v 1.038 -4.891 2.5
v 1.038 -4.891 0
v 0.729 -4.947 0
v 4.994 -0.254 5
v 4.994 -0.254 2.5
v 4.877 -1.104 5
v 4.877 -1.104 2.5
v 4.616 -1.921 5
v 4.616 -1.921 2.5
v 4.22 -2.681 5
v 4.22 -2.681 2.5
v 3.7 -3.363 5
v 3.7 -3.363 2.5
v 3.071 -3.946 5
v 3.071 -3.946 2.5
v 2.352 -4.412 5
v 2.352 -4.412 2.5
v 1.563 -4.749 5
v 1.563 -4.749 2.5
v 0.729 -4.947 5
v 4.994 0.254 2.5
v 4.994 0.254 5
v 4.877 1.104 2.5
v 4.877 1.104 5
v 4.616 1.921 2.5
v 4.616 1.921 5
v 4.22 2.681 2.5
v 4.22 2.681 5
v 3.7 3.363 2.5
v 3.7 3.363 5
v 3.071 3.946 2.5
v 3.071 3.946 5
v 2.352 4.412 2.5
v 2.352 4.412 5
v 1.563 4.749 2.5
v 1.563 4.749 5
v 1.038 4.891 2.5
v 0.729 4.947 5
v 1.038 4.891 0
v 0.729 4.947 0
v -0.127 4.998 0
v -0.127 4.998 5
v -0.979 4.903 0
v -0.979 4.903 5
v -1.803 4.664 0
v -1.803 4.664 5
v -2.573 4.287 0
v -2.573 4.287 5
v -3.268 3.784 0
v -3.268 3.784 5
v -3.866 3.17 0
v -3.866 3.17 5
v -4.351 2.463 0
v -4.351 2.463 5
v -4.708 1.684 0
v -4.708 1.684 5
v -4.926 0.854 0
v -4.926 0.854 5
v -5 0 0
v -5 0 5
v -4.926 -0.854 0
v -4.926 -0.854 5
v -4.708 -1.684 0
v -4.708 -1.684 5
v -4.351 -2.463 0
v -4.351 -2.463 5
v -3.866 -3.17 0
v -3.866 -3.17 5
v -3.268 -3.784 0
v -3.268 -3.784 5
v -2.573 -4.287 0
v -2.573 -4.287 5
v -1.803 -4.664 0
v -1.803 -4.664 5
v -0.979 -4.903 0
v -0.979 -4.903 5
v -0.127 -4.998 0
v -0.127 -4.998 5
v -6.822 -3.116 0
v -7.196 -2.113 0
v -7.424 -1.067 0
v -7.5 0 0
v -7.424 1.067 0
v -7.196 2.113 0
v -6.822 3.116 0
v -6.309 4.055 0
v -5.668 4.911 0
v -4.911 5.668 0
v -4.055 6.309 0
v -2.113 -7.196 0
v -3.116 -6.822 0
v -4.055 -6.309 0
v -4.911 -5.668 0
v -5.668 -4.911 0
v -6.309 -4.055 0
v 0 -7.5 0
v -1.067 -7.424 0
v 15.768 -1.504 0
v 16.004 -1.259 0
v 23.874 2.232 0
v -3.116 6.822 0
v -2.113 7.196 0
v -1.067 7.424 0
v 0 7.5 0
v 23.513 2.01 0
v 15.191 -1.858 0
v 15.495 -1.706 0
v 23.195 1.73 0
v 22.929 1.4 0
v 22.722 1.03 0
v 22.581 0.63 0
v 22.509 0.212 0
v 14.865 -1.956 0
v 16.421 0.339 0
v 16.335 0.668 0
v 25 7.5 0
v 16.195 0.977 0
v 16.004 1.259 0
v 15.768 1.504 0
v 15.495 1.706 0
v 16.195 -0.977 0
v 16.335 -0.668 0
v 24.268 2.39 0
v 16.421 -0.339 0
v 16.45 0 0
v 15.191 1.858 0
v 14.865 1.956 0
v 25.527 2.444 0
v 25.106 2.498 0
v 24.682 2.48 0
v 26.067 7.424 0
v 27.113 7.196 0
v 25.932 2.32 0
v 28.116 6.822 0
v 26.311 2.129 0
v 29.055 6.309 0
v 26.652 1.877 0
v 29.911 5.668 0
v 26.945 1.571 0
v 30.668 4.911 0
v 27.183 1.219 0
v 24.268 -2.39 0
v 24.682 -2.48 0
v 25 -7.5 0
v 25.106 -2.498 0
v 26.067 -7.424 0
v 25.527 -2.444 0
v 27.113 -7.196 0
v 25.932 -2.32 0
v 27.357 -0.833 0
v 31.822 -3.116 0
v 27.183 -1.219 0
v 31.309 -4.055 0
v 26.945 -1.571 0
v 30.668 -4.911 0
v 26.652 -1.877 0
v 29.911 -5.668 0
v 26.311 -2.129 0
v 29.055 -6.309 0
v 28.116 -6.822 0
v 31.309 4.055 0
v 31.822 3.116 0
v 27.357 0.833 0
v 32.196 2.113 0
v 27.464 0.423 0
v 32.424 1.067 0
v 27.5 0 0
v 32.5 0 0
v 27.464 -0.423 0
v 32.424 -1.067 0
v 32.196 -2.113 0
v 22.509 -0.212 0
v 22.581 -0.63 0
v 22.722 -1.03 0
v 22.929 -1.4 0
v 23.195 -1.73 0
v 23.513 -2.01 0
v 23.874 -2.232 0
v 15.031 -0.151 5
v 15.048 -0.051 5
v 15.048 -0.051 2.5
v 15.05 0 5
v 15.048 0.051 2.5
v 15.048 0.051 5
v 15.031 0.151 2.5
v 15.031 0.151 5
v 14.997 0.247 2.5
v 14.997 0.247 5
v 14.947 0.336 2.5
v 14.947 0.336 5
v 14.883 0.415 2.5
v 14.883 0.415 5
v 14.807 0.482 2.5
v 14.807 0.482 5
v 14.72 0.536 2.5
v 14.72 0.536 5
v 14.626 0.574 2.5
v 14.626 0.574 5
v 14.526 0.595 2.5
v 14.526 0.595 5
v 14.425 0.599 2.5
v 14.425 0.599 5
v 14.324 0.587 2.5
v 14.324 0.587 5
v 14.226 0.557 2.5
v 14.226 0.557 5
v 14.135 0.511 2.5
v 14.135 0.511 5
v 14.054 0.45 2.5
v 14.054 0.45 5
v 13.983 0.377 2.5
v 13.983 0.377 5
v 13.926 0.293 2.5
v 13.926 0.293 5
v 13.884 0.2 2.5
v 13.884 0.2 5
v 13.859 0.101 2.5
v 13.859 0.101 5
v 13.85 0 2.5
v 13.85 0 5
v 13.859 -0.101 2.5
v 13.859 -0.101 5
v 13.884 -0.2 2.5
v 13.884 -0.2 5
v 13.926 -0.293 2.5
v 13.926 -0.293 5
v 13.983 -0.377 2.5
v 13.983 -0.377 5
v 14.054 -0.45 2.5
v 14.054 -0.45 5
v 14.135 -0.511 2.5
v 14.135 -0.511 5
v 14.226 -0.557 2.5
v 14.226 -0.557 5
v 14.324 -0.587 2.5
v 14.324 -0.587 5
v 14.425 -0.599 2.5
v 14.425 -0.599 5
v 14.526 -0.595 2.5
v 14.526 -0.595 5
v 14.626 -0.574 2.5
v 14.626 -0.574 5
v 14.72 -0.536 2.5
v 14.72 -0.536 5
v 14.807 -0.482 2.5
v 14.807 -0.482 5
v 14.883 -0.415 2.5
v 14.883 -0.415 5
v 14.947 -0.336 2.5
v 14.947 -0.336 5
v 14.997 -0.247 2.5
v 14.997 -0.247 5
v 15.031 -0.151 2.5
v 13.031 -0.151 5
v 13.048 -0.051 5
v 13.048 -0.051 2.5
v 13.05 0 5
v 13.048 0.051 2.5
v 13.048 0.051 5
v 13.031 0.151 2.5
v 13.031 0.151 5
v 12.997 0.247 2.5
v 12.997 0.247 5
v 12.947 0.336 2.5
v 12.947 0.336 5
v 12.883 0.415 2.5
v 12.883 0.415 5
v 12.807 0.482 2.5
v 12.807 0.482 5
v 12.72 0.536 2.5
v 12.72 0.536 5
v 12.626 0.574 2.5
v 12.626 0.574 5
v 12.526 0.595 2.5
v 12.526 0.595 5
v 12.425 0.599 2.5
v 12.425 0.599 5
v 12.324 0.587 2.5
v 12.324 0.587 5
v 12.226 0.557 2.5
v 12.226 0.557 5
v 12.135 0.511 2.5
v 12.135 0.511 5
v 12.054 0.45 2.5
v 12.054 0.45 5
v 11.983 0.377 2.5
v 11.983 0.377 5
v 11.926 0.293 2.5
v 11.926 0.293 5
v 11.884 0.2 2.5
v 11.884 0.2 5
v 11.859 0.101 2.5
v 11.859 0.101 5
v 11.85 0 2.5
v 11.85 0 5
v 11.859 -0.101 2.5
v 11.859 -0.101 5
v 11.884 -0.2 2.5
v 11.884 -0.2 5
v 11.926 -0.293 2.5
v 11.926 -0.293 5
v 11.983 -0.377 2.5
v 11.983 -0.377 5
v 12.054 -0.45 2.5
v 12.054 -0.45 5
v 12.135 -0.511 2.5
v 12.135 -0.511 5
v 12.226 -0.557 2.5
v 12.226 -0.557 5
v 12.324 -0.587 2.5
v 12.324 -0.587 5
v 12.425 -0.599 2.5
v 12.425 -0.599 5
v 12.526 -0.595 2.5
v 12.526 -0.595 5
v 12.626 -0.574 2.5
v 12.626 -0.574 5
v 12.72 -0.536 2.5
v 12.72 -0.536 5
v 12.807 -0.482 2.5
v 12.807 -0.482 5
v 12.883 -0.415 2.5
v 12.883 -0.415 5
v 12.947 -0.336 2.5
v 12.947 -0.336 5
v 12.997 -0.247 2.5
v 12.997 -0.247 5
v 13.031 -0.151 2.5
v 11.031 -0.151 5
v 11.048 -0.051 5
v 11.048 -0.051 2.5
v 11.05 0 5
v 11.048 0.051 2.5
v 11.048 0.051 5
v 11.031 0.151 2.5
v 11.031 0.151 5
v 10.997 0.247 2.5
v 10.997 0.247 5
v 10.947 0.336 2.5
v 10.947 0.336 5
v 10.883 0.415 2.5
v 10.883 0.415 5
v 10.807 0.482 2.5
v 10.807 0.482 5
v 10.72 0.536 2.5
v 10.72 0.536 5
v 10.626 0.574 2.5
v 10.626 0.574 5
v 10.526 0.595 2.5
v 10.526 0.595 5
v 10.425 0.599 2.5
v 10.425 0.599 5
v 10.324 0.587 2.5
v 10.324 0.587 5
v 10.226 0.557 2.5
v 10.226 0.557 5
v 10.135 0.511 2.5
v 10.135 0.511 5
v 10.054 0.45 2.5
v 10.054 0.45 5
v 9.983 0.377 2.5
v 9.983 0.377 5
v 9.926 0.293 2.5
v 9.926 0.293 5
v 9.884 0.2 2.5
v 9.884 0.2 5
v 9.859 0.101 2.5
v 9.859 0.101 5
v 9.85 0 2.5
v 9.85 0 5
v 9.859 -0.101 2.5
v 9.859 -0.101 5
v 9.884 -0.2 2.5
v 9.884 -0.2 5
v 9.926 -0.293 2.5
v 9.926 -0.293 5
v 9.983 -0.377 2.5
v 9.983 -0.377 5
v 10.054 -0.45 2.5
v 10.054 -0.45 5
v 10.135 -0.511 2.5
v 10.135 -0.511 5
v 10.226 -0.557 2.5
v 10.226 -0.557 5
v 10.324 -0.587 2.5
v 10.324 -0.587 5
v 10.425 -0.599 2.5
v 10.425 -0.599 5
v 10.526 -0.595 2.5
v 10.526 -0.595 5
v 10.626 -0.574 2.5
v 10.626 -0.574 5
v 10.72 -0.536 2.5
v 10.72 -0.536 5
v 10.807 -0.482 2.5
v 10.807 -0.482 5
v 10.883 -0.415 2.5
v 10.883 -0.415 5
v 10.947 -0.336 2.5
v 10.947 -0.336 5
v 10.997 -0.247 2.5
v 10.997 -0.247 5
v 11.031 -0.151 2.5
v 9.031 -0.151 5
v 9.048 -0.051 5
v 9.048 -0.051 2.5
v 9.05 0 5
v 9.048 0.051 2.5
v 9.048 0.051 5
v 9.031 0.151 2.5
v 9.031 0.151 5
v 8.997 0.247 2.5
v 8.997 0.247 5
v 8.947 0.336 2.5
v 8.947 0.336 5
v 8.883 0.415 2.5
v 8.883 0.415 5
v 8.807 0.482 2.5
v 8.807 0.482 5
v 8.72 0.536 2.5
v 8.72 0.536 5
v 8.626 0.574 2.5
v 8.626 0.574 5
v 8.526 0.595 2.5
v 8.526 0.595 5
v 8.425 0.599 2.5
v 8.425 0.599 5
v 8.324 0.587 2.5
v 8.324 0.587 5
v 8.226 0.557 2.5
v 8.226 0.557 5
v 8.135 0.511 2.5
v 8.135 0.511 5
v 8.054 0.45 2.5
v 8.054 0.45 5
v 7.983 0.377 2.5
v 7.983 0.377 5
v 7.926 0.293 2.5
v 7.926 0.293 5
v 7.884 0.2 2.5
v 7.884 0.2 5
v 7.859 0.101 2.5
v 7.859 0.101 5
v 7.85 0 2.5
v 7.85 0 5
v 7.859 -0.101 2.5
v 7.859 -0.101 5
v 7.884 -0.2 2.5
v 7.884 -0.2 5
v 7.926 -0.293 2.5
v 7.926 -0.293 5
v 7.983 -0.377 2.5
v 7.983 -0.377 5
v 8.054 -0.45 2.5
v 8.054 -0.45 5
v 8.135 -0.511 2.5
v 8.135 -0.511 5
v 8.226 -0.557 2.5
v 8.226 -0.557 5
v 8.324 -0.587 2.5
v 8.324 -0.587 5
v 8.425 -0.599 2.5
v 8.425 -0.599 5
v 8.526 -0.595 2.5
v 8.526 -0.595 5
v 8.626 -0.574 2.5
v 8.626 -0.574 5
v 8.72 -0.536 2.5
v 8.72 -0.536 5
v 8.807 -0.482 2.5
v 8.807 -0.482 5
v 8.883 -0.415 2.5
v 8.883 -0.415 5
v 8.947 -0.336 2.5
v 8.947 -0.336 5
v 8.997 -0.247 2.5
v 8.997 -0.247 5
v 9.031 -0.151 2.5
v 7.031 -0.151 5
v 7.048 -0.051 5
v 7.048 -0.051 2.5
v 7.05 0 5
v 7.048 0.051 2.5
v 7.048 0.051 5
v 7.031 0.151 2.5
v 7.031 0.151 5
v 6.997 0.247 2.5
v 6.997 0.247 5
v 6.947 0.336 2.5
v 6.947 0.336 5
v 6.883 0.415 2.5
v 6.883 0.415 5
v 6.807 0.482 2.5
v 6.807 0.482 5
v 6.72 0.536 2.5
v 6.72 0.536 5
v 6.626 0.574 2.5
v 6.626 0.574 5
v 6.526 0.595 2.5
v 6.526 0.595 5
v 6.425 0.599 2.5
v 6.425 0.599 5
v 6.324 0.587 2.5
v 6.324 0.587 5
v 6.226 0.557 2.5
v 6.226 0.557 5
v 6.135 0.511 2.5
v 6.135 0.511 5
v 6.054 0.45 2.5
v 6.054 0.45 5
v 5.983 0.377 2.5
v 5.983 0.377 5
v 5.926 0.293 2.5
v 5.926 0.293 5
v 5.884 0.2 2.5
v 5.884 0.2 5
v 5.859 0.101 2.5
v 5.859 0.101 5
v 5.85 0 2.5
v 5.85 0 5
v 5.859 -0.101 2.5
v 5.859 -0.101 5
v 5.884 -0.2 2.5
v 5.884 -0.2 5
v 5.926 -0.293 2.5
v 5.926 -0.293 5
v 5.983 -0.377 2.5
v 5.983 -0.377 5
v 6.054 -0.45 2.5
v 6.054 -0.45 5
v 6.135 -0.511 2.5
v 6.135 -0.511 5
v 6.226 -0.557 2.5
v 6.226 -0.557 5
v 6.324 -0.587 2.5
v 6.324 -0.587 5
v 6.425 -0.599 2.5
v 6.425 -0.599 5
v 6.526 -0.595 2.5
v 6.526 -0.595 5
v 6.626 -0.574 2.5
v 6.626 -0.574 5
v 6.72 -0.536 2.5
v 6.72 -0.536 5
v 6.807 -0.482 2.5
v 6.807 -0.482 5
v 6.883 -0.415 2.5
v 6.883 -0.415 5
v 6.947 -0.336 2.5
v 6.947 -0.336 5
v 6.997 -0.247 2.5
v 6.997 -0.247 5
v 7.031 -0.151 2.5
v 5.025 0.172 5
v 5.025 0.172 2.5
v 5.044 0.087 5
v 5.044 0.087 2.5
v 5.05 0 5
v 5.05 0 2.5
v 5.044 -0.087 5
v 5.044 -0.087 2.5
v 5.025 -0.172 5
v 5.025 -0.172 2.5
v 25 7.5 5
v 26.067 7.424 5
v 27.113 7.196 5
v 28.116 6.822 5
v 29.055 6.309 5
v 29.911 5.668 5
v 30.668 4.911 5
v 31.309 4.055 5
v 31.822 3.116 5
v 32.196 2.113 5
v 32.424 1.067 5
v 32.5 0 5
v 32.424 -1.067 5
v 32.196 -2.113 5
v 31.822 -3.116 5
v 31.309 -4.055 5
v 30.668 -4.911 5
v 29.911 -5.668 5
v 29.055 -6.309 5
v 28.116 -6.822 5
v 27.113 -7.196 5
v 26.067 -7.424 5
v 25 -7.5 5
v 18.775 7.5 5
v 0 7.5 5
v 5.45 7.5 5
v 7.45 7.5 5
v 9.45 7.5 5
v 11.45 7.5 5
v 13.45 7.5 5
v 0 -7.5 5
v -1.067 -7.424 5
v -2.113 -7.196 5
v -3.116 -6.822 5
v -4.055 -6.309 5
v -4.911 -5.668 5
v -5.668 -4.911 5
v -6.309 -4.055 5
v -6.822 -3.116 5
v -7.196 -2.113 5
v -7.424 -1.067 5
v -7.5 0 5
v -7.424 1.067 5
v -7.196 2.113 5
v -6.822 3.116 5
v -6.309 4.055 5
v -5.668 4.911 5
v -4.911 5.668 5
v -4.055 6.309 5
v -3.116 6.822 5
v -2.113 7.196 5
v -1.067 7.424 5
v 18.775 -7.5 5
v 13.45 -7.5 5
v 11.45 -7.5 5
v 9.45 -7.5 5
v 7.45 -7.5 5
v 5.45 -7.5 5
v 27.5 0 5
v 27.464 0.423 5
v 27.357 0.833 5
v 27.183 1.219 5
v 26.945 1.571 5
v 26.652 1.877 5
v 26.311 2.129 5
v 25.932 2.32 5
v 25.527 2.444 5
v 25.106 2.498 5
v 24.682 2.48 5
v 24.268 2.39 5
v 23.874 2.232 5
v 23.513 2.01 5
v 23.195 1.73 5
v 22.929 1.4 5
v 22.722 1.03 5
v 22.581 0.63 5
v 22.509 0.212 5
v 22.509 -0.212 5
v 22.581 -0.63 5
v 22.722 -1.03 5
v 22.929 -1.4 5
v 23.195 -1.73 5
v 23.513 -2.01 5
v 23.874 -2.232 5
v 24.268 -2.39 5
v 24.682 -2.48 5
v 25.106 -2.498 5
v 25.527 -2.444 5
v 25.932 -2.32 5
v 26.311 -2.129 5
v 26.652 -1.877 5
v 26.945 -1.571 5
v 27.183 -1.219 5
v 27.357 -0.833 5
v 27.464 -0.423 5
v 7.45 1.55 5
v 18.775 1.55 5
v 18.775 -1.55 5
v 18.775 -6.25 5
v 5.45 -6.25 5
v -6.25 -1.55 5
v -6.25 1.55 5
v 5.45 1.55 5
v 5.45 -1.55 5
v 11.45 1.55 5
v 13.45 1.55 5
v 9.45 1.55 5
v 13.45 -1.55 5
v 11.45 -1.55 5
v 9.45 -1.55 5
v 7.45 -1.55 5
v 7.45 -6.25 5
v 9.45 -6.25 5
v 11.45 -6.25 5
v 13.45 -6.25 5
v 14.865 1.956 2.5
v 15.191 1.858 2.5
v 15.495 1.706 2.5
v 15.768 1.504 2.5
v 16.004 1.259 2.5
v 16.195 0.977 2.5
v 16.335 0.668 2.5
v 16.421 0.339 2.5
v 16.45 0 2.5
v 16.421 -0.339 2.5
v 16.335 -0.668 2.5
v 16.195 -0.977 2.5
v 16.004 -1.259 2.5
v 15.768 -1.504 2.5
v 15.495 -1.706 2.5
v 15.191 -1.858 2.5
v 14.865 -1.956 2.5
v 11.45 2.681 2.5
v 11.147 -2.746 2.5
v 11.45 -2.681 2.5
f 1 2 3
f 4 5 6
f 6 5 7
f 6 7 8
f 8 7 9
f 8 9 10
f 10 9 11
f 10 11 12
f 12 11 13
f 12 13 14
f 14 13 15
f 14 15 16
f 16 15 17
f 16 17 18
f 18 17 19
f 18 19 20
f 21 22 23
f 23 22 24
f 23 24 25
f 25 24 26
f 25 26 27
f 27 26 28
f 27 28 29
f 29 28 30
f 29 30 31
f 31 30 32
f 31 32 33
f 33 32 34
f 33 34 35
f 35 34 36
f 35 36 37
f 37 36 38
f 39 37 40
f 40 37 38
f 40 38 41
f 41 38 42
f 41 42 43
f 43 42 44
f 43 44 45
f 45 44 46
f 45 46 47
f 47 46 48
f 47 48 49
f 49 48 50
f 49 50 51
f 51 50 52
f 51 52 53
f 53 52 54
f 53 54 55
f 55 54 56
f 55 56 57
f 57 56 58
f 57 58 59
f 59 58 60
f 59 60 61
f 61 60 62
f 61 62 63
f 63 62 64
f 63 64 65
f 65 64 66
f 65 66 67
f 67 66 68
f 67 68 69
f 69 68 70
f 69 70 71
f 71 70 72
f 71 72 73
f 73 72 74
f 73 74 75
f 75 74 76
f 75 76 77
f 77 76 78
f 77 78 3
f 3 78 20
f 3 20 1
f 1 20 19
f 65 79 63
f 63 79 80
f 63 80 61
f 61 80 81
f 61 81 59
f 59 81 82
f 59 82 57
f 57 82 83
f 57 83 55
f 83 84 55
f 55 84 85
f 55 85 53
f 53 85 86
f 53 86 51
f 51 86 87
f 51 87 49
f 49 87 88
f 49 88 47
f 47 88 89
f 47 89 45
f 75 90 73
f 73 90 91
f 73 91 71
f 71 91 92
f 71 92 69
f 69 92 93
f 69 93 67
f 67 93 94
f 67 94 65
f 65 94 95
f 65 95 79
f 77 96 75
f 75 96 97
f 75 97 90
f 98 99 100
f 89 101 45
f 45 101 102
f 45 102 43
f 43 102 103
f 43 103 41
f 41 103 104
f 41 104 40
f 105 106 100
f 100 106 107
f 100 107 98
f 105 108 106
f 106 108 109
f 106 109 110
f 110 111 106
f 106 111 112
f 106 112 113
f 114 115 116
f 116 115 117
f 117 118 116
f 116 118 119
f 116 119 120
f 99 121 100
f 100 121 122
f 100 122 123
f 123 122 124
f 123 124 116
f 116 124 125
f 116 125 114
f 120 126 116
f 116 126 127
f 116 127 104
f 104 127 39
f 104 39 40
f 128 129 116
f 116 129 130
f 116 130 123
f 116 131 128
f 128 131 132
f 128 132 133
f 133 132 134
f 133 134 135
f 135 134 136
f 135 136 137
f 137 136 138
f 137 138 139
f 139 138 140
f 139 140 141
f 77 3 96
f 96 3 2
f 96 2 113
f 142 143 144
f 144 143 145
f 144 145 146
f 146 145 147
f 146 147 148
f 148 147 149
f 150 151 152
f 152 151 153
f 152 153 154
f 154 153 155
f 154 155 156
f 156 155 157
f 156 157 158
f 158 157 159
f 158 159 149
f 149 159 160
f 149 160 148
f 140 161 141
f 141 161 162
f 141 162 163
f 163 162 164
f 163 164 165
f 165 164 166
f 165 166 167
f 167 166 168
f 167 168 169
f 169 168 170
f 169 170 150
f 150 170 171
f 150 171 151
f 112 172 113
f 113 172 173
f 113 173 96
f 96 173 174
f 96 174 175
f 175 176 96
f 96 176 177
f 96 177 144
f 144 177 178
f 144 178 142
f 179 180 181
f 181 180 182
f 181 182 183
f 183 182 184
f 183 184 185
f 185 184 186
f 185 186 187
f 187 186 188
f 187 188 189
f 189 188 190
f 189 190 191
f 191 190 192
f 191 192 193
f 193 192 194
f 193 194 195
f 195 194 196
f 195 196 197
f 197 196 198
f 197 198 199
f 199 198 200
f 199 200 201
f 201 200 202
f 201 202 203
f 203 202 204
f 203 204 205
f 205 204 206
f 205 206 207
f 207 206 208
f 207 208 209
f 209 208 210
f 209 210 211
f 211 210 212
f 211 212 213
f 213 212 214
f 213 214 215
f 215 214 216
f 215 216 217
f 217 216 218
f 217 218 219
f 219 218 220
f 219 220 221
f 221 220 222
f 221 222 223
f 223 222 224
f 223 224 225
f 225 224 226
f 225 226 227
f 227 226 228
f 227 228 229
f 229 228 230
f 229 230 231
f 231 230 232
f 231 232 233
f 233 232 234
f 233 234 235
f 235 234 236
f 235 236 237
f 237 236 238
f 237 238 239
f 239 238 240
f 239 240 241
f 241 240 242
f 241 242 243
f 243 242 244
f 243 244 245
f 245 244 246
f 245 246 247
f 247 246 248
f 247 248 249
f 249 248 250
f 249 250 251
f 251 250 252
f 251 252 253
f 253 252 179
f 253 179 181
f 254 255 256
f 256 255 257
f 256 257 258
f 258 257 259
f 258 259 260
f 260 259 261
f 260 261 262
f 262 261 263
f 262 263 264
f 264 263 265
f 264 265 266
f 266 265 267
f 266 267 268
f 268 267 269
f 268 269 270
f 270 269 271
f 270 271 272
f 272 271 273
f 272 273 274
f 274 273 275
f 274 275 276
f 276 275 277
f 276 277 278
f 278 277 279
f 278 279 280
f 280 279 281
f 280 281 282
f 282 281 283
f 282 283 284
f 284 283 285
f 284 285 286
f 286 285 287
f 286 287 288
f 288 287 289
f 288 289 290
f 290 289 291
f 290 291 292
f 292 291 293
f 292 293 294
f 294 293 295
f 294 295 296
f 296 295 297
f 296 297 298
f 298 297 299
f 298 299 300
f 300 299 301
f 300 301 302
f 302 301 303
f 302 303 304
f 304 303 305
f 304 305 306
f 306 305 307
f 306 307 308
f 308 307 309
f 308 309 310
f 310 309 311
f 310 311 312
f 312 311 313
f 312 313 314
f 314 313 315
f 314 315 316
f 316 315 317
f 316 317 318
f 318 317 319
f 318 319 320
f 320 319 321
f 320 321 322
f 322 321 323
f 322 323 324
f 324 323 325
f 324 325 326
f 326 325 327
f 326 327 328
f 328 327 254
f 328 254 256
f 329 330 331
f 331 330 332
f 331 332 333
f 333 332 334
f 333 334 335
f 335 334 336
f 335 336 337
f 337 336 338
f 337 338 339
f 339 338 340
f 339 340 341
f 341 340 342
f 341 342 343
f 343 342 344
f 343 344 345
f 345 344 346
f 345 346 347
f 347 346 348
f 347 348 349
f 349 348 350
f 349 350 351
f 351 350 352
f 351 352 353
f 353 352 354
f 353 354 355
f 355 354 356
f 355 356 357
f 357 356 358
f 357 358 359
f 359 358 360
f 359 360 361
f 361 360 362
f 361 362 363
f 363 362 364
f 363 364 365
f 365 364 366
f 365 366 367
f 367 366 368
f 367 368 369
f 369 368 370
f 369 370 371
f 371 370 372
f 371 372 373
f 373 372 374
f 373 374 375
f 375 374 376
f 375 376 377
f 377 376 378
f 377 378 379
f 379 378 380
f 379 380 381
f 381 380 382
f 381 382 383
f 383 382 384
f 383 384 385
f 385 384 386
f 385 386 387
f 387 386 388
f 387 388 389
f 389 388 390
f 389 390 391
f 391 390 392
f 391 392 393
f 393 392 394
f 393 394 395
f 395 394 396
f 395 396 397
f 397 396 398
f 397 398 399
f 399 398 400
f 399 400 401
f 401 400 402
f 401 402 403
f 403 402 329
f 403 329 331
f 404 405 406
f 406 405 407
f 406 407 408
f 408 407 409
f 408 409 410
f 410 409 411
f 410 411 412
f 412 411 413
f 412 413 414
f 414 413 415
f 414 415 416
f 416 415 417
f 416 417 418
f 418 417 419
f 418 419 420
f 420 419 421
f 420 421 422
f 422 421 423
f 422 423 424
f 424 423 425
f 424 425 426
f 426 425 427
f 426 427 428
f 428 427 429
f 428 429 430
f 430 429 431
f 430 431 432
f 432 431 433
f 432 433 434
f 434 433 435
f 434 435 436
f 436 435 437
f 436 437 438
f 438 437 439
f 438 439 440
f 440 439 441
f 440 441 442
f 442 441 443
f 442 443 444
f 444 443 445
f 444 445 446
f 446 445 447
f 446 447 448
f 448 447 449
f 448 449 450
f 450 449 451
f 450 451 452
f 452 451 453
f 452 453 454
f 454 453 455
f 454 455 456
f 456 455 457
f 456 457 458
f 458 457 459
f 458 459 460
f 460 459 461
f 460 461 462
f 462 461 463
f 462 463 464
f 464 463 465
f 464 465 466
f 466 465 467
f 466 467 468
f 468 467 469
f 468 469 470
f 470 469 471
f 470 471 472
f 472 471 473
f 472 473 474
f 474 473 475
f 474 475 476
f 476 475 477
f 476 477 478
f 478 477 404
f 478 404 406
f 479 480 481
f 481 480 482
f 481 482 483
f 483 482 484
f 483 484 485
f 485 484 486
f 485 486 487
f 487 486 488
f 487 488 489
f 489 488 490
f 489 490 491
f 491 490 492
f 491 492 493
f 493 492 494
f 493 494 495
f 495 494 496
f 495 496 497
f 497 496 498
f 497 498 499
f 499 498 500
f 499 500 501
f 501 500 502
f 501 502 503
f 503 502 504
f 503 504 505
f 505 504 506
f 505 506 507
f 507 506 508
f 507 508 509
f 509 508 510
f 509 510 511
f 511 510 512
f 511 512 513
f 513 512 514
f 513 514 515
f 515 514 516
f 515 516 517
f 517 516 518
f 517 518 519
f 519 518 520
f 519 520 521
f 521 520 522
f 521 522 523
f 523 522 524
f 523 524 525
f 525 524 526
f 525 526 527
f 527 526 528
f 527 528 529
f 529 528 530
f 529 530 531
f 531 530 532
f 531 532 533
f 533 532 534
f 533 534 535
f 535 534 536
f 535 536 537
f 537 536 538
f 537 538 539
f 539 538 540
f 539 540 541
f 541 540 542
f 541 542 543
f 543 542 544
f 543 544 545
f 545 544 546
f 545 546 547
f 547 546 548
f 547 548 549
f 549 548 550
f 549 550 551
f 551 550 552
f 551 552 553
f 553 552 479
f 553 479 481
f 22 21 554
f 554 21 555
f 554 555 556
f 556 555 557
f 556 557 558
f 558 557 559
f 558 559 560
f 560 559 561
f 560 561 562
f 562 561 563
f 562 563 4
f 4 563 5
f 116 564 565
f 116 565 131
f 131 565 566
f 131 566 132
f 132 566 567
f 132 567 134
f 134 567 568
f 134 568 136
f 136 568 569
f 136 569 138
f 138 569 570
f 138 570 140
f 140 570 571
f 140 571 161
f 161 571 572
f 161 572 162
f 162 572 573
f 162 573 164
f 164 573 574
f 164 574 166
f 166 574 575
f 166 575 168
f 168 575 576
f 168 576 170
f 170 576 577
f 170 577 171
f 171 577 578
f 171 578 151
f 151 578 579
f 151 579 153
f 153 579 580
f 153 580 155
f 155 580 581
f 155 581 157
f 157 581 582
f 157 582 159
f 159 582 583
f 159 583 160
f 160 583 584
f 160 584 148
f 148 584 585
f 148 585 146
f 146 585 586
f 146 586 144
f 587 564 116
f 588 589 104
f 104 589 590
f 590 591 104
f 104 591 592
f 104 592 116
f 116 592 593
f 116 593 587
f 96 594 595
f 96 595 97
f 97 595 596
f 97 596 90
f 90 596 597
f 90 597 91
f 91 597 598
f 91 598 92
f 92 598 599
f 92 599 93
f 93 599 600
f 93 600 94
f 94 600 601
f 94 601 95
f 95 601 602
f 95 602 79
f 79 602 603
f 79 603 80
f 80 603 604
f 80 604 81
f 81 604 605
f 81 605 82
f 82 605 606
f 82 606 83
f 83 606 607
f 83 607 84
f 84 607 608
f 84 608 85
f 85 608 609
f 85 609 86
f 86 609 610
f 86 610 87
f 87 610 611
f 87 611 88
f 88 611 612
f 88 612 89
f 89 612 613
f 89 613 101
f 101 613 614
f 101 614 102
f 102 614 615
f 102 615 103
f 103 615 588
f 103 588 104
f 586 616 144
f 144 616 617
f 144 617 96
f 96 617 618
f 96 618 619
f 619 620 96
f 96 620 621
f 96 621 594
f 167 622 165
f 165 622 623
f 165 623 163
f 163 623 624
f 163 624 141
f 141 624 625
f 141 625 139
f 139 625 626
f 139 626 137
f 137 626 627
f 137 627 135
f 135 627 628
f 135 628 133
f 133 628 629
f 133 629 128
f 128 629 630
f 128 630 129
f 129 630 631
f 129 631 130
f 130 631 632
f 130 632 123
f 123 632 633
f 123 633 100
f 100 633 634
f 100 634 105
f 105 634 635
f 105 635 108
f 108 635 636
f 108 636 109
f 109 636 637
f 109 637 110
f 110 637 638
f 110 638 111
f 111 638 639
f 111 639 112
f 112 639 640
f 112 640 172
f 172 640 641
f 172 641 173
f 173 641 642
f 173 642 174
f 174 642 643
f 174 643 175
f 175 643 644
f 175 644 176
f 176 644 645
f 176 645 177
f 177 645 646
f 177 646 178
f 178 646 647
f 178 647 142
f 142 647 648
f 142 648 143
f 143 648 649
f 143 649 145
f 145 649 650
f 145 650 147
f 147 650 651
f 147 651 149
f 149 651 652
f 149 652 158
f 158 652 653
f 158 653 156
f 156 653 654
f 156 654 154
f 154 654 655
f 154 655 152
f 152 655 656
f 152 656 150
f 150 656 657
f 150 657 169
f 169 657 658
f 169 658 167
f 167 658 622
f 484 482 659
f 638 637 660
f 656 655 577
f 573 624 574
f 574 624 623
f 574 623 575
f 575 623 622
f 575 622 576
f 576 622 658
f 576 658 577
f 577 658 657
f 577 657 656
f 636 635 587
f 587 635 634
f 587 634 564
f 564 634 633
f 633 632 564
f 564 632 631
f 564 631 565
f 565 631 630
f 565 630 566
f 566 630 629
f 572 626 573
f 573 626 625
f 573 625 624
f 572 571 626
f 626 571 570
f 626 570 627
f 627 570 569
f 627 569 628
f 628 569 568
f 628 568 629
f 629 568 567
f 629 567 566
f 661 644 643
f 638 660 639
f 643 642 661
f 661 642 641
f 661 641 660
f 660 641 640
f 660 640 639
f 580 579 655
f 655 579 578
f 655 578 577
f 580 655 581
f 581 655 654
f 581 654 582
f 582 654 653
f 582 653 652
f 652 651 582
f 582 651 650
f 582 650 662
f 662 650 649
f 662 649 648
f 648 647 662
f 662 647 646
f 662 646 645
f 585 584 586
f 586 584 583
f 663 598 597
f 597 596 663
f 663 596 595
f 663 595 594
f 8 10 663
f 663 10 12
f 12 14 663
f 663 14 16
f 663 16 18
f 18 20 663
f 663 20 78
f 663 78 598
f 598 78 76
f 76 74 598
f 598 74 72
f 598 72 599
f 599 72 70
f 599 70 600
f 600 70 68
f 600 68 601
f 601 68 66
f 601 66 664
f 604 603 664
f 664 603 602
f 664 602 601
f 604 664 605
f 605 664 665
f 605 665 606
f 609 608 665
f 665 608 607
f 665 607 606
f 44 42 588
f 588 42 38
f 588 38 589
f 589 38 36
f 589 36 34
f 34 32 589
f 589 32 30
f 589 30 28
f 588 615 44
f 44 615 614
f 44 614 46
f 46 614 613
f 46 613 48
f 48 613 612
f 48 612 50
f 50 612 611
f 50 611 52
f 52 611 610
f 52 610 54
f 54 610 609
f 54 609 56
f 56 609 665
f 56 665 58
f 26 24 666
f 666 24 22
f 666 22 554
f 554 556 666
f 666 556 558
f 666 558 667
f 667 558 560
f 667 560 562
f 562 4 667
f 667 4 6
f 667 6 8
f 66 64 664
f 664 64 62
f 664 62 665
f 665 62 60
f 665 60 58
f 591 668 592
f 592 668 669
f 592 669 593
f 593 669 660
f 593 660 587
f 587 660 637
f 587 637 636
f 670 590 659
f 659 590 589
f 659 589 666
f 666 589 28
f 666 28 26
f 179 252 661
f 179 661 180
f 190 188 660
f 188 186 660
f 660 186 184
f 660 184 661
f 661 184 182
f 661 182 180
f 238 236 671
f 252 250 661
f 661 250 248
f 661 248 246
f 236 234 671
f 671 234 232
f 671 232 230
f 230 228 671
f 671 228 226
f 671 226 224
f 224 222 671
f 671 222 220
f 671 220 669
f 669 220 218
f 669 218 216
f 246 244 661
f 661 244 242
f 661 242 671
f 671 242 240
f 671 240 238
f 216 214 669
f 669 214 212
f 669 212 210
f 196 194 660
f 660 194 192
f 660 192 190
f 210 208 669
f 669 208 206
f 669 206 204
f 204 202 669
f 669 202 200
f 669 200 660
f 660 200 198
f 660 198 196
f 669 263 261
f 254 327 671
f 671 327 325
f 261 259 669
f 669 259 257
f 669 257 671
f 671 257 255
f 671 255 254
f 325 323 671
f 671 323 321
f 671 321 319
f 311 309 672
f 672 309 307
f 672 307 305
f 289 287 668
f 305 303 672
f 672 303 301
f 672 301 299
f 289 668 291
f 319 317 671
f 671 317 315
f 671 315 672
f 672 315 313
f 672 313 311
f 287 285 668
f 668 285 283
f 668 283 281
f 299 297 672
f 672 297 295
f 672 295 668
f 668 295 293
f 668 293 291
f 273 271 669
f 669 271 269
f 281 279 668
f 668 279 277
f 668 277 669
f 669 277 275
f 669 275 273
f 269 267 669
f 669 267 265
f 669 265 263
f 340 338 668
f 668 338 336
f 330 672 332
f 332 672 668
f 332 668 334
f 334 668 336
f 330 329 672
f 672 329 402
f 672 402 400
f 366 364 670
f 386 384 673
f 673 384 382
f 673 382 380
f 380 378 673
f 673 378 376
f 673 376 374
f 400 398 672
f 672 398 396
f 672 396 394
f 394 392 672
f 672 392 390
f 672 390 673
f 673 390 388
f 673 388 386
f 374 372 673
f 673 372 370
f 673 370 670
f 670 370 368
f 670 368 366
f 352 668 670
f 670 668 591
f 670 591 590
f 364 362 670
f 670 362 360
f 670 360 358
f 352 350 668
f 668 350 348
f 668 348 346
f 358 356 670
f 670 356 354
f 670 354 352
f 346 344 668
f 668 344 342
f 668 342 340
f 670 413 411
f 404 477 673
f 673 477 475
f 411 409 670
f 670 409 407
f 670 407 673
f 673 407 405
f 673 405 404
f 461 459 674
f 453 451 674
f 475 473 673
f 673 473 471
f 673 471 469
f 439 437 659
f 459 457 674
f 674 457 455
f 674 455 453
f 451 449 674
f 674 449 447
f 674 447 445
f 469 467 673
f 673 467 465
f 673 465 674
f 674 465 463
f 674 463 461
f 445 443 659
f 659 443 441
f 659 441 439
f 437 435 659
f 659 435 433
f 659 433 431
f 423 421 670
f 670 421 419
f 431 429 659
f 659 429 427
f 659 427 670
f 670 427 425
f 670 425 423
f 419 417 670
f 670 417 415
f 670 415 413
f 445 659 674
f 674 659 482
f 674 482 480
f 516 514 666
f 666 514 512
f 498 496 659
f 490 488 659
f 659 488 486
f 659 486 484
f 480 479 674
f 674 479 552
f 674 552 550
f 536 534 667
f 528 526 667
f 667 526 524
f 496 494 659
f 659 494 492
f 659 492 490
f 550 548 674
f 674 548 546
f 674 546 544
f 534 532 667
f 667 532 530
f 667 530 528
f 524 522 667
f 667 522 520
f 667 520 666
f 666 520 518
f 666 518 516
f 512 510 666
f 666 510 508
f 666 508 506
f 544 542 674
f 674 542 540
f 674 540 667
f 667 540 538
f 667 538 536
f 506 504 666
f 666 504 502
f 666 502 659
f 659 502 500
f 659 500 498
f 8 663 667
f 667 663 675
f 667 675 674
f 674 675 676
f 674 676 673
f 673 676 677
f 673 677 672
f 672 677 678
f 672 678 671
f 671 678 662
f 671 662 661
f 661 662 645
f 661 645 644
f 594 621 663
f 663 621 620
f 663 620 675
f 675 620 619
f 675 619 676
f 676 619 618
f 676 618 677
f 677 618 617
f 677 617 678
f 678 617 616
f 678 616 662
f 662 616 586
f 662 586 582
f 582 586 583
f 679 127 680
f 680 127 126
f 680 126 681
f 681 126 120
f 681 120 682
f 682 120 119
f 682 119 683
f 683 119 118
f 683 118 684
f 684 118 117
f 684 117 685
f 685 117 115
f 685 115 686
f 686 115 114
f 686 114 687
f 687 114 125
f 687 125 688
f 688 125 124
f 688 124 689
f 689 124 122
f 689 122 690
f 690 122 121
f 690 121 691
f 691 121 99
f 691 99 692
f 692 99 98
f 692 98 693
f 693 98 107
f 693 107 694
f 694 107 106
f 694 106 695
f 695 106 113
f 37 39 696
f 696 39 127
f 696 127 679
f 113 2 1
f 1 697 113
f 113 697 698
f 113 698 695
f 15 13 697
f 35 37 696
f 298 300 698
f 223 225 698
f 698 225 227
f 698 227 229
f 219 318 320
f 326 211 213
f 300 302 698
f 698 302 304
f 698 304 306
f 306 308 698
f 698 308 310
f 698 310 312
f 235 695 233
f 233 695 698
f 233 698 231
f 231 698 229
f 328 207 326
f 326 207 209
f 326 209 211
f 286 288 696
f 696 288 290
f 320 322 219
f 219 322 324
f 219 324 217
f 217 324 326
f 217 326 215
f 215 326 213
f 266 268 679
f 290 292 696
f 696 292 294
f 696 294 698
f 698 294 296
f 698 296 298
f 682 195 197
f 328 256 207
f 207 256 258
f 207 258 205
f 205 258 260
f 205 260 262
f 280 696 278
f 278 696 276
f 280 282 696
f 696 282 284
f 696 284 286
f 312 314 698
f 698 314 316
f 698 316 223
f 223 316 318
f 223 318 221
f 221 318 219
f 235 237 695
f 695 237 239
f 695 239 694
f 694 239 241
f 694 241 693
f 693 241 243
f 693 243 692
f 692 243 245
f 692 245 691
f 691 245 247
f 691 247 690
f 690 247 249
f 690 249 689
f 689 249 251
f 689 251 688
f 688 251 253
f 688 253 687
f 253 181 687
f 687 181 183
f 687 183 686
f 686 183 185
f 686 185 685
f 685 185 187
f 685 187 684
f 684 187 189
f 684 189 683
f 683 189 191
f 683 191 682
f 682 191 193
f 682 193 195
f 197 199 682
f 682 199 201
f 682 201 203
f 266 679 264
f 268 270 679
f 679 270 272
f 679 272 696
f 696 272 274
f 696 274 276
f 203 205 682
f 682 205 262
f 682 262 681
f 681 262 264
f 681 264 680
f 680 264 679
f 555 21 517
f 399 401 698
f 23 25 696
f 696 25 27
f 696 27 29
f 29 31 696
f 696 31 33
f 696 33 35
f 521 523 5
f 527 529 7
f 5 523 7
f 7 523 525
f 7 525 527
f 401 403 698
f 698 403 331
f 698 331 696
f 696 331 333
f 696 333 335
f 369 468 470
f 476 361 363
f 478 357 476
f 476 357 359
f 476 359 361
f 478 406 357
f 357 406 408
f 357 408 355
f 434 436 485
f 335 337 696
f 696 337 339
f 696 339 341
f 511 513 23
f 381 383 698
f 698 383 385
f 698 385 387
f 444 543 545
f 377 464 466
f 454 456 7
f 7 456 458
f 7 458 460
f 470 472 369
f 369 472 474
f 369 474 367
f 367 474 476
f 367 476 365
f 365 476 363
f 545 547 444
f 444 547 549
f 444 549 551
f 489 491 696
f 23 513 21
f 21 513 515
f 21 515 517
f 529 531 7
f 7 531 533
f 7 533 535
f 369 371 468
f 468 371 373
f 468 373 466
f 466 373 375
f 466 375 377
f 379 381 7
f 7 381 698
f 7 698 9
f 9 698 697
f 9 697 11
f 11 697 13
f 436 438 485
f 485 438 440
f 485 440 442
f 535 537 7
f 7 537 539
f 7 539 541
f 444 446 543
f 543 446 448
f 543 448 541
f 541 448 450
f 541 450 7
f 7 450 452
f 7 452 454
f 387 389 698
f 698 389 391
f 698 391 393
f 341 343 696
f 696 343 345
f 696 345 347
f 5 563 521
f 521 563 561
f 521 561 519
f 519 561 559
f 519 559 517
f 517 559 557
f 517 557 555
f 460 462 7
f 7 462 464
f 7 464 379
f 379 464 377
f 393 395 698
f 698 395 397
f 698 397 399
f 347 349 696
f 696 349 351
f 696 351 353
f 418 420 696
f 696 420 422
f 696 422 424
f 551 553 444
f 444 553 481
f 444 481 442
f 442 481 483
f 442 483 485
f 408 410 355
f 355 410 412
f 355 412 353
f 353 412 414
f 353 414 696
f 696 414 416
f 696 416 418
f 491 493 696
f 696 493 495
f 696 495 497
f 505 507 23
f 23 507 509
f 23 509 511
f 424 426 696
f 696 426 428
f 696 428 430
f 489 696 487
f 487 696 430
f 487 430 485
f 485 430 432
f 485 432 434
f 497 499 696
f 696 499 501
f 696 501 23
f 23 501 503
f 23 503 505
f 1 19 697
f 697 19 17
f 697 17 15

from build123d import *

# Parameters (mm, degrees)
SKETCH1_R           = 5
SKETCH1_R_2         = 2.5
BOSS_EXTRUDE1_DEPTH = 5
SKETCH7_R           = 0.6
CUT_EXTRUDE1_DEPTH  = 10
SKETCH8_R           = 0.6
CUT_EXTRUDE2_DEPTH  = 2.5


with BuildPart() as part:
    # Sketch1 → Boss-Extrude1 (new body)
    with BuildSketch(Plane.XY):
        with BuildLine():
            Line((0, 7.5), (25, 7.5))
            ThreePointArc((25, 7.5), (32.5, 0), (25, -7.5))
            Line((25, -7.5), (0, -7.5))
            ThreePointArc((0, -7.5), (-7.5, 0), (0, 7.5))
        make_face()
        Circle(SKETCH1_R, mode=Mode.SUBTRACT)
        with Locations((25, 0)):
            Circle(SKETCH1_R_2, mode=Mode.SUBTRACT)
    extrude(amount=BOSS_EXTRUDE1_DEPTH)

    # Sketch7 → Cut-Extrude1 (cut)
    with BuildSketch(Plane(origin=(0, 0, 0), x_dir=(-1, 0, 0), z_dir=(0, 0, -1))):
        with Locations((-4.45, 0)):
            Circle(SKETCH7_R)
        with Locations((-6.45, 0)):
            Circle(SKETCH7_R)
        with Locations((-8.45, 0)):
            Circle(SKETCH7_R)
        with Locations((-10.45, 0)):
            Circle(SKETCH7_R)
        with Locations((-12.45, 0)):
            Circle(SKETCH7_R)
        with Locations((-14.45, 0)):
            Circle(SKETCH7_R)
    extrude(amount=-CUT_EXTRUDE1_DEPTH, mode=Mode.SUBTRACT)

    # Sketch8 → Cut-Extrude2 (cut)
    # profile 1 of 3: a face of its own
    with BuildSketch(Plane(origin=(0, 0, 0), x_dir=(-1, 0, 0), z_dir=(0, 0, -1))):
        with BuildLine():
            Line((-1.038062284, 4.891055785), (-14.865224913, 1.956422314))
            ThreePointArc((-14.865224913, 1.956422314), (-13.438479361, 1.72534808), (-12.54, 0.593211598))
            ThreePointArc((-12.54, 0.593211598), (-12.058847856, 0.454972527), (-11.85, 0))
            Line((-11.85, 0), (-11.05, 0))
            ThreePointArc((-11.05, 0), (-10.45, 0.6), (-9.85, 0))
            Line((-9.85, 0), (-9.05, 0))
            ThreePointArc((-9.05, 0), (-8.45, 0.6), (-7.85, 0))
            Line((-7.85, 0), (-7.05, 0))
            ThreePointArc((-7.05, 0), (-6.45, 0.6), (-5.85, 0))
            Line((-5.85, 0), (-5.05, 0))
            ThreePointArc((-5.05, 0), (-5.035714775, 0.130146849), (-4.993539326, 0.254096441))
            ThreePointArc((-4.993539326, 0.254096441), (-3.803998224, 3.244934131), (-1.038062284, 4.891055785))
        make_face()
    # profile 2 of 3: a face of its own
    with BuildSketch(Plane(origin=(0, 0, 0), x_dir=(-1, 0, 0), z_dir=(0, 0, -1))):
        with BuildLine():
            ThreePointArc((-12.54, 0.593211598), (-13.438479361, 1.72534808), (-14.865224913, 1.956422314))
            ThreePointArc((-14.865224913, 1.956422314), (-16.45, 0), (-14.865224913, -1.956422314))
            ThreePointArc((-14.865224913, -1.956422314), (-13.438479361, -1.72534808), (-12.54, -0.593211598))
            ThreePointArc((-12.54, -0.593211598), (-12.904972527, -0.391152144), (-13.05, 0))
            ThreePointArc((-13.05, 0), (-12.904972527, 0.391152144), (-12.54, 0.593211598))
        make_face()
        with Locations((-14.45, 0)):
            Circle(SKETCH8_R, mode=Mode.SUBTRACT)
    # profile 3 of 3: a face of its own
    with BuildSketch(Plane(origin=(0, 0, 0), x_dir=(-1, 0, 0), z_dir=(0, 0, -1))):
        with BuildLine():
            ThreePointArc((-12.54, -0.593211598), (-13.438479361, -1.72534808), (-14.865224913, -1.956422314))
            Line((-14.865224913, -1.956422314), (-1.038062284, -4.891055785))
            ThreePointArc((-1.038062284, -4.891055785), (-3.803998224, -3.244934131), (-4.993539326, -0.254096441))
            ThreePointArc((-4.993539326, -0.254096441), (-5.035714775, -0.130146849), (-5.05, 0))
            Line((-5.05, 0), (-5.85, 0))
            ThreePointArc((-5.85, 0), (-6.45, -0.6), (-7.05, 0))
            Line((-7.05, 0), (-7.85, 0))
            ThreePointArc((-7.85, 0), (-8.45, -0.6), (-9.05, 0))
            Line((-9.05, 0), (-9.85, 0))
            ThreePointArc((-9.85, 0), (-10.45, -0.6), (-11.05, 0))
            Line((-11.05, 0), (-11.85, 0))
            ThreePointArc((-11.85, 0), (-12.058847856, -0.454972527), (-12.54, -0.593211598))
        make_face()
    extrude(amount=-CUT_EXTRUDE2_DEPTH, mode=Mode.SUBTRACT)


with BuildPart() as cut_extrude2_kept_piece:
    # of the separate pieces the step leaves, the one the design keeps (cut_extrude2_pieces_kept)
    add(part.part.solids().sort_by_distance((11.85, 0, 5))[0])


solid = cut_extrude2_kept_piece.part
